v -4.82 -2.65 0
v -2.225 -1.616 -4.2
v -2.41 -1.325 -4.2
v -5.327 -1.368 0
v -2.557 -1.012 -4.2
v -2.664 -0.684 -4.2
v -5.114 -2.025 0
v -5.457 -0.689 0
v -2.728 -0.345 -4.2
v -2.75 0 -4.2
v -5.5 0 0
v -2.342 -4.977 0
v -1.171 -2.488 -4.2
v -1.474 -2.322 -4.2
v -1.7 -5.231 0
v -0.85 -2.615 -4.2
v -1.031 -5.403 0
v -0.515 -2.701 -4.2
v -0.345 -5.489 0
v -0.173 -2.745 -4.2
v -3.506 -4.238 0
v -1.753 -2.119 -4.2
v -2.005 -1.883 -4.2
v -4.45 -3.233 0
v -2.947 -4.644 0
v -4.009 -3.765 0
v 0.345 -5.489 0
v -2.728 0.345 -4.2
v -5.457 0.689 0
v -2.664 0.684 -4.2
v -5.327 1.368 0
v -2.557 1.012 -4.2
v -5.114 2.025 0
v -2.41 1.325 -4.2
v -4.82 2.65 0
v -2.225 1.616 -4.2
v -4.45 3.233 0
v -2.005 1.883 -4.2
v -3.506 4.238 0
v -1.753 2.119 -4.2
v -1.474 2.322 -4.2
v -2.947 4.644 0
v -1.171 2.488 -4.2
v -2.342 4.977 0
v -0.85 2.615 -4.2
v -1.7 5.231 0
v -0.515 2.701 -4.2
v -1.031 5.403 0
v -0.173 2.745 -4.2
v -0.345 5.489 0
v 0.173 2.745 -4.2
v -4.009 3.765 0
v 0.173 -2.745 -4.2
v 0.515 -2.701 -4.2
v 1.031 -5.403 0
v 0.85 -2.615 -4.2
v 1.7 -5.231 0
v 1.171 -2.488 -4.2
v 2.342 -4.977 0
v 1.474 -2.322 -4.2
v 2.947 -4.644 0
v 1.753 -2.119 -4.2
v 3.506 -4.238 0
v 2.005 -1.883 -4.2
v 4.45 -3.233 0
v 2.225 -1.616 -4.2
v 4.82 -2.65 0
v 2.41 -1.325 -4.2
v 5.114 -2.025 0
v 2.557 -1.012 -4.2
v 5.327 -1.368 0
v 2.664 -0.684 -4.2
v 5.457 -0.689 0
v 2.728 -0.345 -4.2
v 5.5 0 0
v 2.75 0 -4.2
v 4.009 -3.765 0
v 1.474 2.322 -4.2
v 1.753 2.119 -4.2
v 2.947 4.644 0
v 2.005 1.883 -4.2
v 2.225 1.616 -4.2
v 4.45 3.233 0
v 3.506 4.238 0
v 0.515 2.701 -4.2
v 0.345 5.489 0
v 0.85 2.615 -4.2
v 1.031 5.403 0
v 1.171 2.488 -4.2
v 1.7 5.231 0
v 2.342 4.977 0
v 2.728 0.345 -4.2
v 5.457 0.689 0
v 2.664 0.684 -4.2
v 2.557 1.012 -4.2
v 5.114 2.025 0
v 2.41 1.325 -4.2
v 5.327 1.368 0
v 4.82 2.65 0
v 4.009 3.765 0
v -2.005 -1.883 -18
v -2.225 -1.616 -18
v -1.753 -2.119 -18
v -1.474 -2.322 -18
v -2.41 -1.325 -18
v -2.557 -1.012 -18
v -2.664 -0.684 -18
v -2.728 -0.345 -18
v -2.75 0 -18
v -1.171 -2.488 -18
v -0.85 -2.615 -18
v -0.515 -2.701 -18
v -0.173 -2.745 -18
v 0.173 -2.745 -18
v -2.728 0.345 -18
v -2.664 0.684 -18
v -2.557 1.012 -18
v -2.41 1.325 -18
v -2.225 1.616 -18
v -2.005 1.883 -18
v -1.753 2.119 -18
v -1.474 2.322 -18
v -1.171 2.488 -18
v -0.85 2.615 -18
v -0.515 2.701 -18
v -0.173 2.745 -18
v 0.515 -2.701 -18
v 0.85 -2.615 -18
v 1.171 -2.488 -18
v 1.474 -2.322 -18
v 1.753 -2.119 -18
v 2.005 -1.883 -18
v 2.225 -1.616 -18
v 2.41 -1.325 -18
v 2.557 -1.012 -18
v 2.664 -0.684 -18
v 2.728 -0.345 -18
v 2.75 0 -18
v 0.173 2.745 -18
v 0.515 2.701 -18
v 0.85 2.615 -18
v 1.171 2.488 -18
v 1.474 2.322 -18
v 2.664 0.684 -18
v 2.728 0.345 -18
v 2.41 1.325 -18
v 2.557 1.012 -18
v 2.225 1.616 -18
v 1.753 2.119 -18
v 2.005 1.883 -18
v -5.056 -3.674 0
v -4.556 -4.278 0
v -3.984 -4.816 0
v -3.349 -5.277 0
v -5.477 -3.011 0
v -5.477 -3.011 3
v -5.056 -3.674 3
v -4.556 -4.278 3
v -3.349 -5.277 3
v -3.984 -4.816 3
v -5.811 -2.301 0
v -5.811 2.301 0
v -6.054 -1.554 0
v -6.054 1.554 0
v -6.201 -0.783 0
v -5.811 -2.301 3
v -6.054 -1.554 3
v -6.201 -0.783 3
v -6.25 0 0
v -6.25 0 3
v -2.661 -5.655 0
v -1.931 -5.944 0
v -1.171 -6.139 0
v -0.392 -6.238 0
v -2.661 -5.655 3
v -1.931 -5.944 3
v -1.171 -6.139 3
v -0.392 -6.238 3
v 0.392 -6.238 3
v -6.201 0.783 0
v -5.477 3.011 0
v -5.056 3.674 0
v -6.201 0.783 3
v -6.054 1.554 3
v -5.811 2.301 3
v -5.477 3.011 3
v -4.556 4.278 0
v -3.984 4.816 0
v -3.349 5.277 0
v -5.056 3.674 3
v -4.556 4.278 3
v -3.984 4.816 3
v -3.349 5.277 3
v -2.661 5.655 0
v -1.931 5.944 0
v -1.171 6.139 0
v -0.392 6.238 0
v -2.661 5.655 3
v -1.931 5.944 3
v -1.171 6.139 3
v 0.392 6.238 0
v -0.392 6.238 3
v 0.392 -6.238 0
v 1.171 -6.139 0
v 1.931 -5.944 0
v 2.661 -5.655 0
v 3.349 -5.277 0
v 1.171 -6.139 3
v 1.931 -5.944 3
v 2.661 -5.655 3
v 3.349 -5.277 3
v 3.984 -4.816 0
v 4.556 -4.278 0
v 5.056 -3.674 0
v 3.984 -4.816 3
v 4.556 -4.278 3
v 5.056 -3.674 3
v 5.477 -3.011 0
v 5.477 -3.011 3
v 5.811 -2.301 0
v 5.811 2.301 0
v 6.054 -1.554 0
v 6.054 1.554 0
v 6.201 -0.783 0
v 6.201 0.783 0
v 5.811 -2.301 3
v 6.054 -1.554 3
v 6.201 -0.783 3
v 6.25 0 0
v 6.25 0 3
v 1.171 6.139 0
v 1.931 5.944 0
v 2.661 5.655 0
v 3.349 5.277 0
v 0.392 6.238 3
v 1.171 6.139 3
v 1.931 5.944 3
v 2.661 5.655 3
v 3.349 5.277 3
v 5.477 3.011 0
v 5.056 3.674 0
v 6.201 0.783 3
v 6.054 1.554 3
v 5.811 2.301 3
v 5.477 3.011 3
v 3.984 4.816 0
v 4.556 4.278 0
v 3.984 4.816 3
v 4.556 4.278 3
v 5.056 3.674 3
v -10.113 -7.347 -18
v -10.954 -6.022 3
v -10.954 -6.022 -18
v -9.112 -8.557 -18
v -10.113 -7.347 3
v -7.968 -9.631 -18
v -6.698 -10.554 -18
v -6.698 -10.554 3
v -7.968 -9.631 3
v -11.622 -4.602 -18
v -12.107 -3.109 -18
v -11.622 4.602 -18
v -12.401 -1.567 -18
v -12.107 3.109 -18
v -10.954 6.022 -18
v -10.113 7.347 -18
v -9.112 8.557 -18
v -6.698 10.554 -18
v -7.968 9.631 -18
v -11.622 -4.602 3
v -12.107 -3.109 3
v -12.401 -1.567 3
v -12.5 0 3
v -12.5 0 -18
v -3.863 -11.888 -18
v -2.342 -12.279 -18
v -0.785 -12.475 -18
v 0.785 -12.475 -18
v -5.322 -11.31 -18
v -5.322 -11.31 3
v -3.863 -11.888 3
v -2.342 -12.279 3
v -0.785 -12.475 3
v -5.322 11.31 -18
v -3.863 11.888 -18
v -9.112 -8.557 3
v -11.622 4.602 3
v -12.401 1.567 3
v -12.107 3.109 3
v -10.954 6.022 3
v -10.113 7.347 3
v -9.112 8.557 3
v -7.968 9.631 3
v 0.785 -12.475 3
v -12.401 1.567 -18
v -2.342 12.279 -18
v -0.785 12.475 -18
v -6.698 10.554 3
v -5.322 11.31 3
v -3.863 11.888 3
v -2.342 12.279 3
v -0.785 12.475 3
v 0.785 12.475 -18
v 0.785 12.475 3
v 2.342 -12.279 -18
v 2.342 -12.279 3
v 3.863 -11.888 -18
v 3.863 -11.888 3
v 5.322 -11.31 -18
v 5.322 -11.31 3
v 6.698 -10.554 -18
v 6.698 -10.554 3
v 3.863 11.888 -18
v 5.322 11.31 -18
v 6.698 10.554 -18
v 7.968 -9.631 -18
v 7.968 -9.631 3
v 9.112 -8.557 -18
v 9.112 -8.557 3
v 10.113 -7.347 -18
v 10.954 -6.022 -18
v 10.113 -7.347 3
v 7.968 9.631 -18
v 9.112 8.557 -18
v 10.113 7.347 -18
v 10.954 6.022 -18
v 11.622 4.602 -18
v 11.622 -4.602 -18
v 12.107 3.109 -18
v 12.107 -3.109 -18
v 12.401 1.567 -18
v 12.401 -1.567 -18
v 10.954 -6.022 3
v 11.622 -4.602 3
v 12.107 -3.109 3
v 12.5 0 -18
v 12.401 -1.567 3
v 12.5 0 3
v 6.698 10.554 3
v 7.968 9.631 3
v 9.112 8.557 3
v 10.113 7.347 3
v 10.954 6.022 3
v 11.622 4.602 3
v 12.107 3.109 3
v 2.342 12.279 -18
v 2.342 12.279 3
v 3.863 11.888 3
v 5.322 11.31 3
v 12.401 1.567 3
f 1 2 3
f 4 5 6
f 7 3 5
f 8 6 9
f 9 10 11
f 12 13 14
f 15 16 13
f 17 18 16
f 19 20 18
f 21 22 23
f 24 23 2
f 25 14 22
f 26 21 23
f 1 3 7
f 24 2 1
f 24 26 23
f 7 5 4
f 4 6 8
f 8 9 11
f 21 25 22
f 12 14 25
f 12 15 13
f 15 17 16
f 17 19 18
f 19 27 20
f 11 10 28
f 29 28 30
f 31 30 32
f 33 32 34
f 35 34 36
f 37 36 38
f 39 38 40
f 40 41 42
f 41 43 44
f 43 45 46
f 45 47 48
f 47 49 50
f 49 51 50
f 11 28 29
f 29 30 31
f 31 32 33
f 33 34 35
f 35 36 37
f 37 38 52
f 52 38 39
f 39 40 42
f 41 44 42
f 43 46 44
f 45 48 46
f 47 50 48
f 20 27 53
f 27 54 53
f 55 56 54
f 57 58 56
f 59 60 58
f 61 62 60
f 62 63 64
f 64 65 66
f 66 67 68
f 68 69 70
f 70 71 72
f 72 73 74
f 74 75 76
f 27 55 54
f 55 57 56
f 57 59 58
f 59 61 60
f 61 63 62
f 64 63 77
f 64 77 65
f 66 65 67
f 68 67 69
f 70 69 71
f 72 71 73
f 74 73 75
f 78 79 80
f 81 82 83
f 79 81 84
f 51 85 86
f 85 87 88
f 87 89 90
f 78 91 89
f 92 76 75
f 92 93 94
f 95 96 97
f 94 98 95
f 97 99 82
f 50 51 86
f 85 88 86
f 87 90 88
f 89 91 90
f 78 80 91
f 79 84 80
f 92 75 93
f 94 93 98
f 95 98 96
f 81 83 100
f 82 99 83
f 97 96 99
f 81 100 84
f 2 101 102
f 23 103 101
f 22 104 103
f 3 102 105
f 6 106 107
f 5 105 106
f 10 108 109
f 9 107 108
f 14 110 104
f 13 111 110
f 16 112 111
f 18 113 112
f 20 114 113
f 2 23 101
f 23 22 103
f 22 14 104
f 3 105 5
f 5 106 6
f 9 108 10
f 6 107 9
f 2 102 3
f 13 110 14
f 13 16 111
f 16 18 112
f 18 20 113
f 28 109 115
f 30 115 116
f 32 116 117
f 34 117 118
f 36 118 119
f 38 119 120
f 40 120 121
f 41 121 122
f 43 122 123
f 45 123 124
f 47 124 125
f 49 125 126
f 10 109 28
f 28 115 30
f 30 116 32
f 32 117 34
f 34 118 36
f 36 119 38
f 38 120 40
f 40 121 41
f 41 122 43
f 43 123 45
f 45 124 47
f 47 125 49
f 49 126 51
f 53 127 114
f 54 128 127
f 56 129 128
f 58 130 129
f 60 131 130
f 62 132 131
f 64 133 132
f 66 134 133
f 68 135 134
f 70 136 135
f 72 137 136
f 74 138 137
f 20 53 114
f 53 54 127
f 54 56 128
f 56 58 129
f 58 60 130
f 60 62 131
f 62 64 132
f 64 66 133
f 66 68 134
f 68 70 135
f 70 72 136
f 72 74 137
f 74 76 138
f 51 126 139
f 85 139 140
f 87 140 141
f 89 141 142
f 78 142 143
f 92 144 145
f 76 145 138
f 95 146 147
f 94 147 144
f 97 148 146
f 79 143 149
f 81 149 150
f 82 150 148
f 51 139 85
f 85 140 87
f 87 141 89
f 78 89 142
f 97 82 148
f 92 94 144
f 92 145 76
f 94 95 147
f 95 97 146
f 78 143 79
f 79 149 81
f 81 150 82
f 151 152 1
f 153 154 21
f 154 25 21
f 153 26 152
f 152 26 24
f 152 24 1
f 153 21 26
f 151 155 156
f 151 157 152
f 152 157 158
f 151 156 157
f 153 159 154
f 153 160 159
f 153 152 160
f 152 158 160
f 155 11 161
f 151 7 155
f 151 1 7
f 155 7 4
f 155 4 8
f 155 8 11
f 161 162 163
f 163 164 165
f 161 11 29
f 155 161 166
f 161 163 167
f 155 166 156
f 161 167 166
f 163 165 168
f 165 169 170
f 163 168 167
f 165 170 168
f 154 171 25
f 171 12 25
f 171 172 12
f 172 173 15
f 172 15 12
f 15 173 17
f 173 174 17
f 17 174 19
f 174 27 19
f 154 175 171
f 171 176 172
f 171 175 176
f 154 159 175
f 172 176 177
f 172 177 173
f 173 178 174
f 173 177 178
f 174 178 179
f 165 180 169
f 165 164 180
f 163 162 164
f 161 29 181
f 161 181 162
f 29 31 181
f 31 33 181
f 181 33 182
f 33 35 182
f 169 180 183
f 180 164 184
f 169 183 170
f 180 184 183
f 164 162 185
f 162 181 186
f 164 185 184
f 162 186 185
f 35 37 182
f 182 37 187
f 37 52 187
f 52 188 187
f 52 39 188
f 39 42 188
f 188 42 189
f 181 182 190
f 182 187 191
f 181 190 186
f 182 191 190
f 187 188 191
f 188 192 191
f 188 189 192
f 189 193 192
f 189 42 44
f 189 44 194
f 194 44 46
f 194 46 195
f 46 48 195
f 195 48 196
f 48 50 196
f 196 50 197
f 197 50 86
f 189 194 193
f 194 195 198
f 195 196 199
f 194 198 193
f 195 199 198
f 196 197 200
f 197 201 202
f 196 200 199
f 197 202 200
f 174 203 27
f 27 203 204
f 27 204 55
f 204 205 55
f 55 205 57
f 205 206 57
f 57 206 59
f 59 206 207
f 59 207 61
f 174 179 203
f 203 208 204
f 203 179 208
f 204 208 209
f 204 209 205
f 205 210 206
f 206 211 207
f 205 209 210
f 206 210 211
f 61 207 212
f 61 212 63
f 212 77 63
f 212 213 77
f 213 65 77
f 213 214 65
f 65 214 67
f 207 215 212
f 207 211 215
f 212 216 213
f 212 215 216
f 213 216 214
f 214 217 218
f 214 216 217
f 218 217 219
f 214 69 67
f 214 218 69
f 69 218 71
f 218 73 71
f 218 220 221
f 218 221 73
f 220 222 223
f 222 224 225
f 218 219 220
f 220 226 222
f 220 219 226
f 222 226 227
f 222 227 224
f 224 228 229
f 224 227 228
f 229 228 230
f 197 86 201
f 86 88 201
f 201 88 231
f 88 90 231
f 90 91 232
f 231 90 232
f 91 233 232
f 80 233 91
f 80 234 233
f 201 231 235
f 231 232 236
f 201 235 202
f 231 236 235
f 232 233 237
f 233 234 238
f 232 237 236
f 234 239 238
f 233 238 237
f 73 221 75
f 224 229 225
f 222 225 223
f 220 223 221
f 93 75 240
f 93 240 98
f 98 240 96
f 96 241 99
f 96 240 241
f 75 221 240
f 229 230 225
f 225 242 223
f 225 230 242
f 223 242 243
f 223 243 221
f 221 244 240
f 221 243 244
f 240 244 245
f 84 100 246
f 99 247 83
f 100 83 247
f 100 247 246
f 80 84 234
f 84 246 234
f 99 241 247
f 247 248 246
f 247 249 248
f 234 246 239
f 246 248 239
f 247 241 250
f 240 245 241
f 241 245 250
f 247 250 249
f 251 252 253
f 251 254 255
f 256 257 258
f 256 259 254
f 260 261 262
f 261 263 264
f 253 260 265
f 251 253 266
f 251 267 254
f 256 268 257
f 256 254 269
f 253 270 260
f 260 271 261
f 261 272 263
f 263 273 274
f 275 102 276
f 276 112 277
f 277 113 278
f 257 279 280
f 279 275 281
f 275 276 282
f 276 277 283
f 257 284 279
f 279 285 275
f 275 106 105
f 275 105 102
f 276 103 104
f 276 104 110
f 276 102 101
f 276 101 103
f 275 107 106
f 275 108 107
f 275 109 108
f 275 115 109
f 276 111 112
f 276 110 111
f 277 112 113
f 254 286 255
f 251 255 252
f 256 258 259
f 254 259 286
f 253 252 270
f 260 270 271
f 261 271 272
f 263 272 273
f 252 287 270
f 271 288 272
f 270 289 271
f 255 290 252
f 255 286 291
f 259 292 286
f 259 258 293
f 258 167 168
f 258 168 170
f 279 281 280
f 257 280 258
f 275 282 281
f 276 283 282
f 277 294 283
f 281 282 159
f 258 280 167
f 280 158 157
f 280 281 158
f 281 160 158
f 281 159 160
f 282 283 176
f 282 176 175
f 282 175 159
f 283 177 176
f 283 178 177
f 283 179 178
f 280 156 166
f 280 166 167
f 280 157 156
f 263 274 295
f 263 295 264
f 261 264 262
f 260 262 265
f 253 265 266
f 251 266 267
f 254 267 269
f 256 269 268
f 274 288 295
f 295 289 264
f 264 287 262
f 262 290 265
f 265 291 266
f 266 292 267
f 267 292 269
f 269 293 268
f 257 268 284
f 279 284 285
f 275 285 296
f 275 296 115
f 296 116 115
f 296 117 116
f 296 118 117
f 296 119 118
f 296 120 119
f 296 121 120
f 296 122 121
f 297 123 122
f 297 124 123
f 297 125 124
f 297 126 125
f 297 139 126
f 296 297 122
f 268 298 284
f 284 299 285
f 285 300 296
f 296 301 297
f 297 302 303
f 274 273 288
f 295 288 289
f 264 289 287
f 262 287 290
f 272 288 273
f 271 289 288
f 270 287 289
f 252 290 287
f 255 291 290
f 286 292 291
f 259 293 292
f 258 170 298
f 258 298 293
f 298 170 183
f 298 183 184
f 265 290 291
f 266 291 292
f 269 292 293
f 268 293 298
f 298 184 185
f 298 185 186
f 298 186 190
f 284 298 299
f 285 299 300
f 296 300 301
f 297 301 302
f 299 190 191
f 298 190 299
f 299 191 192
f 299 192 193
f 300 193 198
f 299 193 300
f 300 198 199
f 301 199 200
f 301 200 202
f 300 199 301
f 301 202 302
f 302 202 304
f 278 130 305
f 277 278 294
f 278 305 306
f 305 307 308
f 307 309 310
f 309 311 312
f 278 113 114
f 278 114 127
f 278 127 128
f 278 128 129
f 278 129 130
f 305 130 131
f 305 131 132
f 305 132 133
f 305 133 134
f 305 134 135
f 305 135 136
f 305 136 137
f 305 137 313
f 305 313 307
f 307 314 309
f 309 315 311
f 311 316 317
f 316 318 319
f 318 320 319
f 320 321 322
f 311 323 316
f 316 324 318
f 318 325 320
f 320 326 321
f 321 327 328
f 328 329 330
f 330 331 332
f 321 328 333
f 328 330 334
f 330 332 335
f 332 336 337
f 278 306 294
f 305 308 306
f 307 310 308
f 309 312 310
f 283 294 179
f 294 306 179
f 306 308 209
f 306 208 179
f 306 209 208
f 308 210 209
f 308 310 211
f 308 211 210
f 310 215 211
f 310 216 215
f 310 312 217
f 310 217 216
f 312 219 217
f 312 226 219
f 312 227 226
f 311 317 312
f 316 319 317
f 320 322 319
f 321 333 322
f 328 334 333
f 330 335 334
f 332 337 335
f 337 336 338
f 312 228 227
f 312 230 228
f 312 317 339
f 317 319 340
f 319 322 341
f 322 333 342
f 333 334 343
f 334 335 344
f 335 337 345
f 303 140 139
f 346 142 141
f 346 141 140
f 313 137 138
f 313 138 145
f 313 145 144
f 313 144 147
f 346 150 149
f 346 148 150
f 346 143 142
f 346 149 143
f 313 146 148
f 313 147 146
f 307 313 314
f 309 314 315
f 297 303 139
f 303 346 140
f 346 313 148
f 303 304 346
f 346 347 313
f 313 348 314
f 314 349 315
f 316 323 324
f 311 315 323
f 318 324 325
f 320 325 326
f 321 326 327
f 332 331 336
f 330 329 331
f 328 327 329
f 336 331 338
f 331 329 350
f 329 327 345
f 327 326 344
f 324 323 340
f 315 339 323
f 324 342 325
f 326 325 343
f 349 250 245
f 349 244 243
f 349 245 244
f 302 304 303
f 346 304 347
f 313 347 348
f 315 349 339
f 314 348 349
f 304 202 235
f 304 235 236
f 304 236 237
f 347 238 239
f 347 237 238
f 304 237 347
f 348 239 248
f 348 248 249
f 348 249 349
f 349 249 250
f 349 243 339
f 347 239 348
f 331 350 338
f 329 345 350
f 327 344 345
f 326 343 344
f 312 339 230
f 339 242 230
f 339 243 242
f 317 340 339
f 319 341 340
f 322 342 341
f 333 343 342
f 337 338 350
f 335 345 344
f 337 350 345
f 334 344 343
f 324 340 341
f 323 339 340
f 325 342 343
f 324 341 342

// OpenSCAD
$fn = 50;

difference() {
	union() {
		translate(v = [0, 0, -18.0]) {
			cylinder(h = 21, r = 12.5);
		}
	}
	union() {
		translate(v = [0, 0, 0]) {
			rotate(a = [0, 0, 0]) {
				difference() {
					union() {
						translate(v = [0, 0, -21.0]) {
							cylinder(h = 21, r = 2.25);
						}
						translate(v = [0, 0, -4.2]) {
							cylinder(h = 4.2, r1 = 2.75, r2 = 5.5);
						}
						translate(v = [0, 0, -21.0]) {
							cylinder(h = 21, r = 2.75);
						}
						translate(v = [0, 0, -21.0]) {
							cylinder(h = 21, r = 2.25);
						}
					}
					union();
				}
			}
		}
		#cylinder(h = 3, r = 6.25);
	}
}
